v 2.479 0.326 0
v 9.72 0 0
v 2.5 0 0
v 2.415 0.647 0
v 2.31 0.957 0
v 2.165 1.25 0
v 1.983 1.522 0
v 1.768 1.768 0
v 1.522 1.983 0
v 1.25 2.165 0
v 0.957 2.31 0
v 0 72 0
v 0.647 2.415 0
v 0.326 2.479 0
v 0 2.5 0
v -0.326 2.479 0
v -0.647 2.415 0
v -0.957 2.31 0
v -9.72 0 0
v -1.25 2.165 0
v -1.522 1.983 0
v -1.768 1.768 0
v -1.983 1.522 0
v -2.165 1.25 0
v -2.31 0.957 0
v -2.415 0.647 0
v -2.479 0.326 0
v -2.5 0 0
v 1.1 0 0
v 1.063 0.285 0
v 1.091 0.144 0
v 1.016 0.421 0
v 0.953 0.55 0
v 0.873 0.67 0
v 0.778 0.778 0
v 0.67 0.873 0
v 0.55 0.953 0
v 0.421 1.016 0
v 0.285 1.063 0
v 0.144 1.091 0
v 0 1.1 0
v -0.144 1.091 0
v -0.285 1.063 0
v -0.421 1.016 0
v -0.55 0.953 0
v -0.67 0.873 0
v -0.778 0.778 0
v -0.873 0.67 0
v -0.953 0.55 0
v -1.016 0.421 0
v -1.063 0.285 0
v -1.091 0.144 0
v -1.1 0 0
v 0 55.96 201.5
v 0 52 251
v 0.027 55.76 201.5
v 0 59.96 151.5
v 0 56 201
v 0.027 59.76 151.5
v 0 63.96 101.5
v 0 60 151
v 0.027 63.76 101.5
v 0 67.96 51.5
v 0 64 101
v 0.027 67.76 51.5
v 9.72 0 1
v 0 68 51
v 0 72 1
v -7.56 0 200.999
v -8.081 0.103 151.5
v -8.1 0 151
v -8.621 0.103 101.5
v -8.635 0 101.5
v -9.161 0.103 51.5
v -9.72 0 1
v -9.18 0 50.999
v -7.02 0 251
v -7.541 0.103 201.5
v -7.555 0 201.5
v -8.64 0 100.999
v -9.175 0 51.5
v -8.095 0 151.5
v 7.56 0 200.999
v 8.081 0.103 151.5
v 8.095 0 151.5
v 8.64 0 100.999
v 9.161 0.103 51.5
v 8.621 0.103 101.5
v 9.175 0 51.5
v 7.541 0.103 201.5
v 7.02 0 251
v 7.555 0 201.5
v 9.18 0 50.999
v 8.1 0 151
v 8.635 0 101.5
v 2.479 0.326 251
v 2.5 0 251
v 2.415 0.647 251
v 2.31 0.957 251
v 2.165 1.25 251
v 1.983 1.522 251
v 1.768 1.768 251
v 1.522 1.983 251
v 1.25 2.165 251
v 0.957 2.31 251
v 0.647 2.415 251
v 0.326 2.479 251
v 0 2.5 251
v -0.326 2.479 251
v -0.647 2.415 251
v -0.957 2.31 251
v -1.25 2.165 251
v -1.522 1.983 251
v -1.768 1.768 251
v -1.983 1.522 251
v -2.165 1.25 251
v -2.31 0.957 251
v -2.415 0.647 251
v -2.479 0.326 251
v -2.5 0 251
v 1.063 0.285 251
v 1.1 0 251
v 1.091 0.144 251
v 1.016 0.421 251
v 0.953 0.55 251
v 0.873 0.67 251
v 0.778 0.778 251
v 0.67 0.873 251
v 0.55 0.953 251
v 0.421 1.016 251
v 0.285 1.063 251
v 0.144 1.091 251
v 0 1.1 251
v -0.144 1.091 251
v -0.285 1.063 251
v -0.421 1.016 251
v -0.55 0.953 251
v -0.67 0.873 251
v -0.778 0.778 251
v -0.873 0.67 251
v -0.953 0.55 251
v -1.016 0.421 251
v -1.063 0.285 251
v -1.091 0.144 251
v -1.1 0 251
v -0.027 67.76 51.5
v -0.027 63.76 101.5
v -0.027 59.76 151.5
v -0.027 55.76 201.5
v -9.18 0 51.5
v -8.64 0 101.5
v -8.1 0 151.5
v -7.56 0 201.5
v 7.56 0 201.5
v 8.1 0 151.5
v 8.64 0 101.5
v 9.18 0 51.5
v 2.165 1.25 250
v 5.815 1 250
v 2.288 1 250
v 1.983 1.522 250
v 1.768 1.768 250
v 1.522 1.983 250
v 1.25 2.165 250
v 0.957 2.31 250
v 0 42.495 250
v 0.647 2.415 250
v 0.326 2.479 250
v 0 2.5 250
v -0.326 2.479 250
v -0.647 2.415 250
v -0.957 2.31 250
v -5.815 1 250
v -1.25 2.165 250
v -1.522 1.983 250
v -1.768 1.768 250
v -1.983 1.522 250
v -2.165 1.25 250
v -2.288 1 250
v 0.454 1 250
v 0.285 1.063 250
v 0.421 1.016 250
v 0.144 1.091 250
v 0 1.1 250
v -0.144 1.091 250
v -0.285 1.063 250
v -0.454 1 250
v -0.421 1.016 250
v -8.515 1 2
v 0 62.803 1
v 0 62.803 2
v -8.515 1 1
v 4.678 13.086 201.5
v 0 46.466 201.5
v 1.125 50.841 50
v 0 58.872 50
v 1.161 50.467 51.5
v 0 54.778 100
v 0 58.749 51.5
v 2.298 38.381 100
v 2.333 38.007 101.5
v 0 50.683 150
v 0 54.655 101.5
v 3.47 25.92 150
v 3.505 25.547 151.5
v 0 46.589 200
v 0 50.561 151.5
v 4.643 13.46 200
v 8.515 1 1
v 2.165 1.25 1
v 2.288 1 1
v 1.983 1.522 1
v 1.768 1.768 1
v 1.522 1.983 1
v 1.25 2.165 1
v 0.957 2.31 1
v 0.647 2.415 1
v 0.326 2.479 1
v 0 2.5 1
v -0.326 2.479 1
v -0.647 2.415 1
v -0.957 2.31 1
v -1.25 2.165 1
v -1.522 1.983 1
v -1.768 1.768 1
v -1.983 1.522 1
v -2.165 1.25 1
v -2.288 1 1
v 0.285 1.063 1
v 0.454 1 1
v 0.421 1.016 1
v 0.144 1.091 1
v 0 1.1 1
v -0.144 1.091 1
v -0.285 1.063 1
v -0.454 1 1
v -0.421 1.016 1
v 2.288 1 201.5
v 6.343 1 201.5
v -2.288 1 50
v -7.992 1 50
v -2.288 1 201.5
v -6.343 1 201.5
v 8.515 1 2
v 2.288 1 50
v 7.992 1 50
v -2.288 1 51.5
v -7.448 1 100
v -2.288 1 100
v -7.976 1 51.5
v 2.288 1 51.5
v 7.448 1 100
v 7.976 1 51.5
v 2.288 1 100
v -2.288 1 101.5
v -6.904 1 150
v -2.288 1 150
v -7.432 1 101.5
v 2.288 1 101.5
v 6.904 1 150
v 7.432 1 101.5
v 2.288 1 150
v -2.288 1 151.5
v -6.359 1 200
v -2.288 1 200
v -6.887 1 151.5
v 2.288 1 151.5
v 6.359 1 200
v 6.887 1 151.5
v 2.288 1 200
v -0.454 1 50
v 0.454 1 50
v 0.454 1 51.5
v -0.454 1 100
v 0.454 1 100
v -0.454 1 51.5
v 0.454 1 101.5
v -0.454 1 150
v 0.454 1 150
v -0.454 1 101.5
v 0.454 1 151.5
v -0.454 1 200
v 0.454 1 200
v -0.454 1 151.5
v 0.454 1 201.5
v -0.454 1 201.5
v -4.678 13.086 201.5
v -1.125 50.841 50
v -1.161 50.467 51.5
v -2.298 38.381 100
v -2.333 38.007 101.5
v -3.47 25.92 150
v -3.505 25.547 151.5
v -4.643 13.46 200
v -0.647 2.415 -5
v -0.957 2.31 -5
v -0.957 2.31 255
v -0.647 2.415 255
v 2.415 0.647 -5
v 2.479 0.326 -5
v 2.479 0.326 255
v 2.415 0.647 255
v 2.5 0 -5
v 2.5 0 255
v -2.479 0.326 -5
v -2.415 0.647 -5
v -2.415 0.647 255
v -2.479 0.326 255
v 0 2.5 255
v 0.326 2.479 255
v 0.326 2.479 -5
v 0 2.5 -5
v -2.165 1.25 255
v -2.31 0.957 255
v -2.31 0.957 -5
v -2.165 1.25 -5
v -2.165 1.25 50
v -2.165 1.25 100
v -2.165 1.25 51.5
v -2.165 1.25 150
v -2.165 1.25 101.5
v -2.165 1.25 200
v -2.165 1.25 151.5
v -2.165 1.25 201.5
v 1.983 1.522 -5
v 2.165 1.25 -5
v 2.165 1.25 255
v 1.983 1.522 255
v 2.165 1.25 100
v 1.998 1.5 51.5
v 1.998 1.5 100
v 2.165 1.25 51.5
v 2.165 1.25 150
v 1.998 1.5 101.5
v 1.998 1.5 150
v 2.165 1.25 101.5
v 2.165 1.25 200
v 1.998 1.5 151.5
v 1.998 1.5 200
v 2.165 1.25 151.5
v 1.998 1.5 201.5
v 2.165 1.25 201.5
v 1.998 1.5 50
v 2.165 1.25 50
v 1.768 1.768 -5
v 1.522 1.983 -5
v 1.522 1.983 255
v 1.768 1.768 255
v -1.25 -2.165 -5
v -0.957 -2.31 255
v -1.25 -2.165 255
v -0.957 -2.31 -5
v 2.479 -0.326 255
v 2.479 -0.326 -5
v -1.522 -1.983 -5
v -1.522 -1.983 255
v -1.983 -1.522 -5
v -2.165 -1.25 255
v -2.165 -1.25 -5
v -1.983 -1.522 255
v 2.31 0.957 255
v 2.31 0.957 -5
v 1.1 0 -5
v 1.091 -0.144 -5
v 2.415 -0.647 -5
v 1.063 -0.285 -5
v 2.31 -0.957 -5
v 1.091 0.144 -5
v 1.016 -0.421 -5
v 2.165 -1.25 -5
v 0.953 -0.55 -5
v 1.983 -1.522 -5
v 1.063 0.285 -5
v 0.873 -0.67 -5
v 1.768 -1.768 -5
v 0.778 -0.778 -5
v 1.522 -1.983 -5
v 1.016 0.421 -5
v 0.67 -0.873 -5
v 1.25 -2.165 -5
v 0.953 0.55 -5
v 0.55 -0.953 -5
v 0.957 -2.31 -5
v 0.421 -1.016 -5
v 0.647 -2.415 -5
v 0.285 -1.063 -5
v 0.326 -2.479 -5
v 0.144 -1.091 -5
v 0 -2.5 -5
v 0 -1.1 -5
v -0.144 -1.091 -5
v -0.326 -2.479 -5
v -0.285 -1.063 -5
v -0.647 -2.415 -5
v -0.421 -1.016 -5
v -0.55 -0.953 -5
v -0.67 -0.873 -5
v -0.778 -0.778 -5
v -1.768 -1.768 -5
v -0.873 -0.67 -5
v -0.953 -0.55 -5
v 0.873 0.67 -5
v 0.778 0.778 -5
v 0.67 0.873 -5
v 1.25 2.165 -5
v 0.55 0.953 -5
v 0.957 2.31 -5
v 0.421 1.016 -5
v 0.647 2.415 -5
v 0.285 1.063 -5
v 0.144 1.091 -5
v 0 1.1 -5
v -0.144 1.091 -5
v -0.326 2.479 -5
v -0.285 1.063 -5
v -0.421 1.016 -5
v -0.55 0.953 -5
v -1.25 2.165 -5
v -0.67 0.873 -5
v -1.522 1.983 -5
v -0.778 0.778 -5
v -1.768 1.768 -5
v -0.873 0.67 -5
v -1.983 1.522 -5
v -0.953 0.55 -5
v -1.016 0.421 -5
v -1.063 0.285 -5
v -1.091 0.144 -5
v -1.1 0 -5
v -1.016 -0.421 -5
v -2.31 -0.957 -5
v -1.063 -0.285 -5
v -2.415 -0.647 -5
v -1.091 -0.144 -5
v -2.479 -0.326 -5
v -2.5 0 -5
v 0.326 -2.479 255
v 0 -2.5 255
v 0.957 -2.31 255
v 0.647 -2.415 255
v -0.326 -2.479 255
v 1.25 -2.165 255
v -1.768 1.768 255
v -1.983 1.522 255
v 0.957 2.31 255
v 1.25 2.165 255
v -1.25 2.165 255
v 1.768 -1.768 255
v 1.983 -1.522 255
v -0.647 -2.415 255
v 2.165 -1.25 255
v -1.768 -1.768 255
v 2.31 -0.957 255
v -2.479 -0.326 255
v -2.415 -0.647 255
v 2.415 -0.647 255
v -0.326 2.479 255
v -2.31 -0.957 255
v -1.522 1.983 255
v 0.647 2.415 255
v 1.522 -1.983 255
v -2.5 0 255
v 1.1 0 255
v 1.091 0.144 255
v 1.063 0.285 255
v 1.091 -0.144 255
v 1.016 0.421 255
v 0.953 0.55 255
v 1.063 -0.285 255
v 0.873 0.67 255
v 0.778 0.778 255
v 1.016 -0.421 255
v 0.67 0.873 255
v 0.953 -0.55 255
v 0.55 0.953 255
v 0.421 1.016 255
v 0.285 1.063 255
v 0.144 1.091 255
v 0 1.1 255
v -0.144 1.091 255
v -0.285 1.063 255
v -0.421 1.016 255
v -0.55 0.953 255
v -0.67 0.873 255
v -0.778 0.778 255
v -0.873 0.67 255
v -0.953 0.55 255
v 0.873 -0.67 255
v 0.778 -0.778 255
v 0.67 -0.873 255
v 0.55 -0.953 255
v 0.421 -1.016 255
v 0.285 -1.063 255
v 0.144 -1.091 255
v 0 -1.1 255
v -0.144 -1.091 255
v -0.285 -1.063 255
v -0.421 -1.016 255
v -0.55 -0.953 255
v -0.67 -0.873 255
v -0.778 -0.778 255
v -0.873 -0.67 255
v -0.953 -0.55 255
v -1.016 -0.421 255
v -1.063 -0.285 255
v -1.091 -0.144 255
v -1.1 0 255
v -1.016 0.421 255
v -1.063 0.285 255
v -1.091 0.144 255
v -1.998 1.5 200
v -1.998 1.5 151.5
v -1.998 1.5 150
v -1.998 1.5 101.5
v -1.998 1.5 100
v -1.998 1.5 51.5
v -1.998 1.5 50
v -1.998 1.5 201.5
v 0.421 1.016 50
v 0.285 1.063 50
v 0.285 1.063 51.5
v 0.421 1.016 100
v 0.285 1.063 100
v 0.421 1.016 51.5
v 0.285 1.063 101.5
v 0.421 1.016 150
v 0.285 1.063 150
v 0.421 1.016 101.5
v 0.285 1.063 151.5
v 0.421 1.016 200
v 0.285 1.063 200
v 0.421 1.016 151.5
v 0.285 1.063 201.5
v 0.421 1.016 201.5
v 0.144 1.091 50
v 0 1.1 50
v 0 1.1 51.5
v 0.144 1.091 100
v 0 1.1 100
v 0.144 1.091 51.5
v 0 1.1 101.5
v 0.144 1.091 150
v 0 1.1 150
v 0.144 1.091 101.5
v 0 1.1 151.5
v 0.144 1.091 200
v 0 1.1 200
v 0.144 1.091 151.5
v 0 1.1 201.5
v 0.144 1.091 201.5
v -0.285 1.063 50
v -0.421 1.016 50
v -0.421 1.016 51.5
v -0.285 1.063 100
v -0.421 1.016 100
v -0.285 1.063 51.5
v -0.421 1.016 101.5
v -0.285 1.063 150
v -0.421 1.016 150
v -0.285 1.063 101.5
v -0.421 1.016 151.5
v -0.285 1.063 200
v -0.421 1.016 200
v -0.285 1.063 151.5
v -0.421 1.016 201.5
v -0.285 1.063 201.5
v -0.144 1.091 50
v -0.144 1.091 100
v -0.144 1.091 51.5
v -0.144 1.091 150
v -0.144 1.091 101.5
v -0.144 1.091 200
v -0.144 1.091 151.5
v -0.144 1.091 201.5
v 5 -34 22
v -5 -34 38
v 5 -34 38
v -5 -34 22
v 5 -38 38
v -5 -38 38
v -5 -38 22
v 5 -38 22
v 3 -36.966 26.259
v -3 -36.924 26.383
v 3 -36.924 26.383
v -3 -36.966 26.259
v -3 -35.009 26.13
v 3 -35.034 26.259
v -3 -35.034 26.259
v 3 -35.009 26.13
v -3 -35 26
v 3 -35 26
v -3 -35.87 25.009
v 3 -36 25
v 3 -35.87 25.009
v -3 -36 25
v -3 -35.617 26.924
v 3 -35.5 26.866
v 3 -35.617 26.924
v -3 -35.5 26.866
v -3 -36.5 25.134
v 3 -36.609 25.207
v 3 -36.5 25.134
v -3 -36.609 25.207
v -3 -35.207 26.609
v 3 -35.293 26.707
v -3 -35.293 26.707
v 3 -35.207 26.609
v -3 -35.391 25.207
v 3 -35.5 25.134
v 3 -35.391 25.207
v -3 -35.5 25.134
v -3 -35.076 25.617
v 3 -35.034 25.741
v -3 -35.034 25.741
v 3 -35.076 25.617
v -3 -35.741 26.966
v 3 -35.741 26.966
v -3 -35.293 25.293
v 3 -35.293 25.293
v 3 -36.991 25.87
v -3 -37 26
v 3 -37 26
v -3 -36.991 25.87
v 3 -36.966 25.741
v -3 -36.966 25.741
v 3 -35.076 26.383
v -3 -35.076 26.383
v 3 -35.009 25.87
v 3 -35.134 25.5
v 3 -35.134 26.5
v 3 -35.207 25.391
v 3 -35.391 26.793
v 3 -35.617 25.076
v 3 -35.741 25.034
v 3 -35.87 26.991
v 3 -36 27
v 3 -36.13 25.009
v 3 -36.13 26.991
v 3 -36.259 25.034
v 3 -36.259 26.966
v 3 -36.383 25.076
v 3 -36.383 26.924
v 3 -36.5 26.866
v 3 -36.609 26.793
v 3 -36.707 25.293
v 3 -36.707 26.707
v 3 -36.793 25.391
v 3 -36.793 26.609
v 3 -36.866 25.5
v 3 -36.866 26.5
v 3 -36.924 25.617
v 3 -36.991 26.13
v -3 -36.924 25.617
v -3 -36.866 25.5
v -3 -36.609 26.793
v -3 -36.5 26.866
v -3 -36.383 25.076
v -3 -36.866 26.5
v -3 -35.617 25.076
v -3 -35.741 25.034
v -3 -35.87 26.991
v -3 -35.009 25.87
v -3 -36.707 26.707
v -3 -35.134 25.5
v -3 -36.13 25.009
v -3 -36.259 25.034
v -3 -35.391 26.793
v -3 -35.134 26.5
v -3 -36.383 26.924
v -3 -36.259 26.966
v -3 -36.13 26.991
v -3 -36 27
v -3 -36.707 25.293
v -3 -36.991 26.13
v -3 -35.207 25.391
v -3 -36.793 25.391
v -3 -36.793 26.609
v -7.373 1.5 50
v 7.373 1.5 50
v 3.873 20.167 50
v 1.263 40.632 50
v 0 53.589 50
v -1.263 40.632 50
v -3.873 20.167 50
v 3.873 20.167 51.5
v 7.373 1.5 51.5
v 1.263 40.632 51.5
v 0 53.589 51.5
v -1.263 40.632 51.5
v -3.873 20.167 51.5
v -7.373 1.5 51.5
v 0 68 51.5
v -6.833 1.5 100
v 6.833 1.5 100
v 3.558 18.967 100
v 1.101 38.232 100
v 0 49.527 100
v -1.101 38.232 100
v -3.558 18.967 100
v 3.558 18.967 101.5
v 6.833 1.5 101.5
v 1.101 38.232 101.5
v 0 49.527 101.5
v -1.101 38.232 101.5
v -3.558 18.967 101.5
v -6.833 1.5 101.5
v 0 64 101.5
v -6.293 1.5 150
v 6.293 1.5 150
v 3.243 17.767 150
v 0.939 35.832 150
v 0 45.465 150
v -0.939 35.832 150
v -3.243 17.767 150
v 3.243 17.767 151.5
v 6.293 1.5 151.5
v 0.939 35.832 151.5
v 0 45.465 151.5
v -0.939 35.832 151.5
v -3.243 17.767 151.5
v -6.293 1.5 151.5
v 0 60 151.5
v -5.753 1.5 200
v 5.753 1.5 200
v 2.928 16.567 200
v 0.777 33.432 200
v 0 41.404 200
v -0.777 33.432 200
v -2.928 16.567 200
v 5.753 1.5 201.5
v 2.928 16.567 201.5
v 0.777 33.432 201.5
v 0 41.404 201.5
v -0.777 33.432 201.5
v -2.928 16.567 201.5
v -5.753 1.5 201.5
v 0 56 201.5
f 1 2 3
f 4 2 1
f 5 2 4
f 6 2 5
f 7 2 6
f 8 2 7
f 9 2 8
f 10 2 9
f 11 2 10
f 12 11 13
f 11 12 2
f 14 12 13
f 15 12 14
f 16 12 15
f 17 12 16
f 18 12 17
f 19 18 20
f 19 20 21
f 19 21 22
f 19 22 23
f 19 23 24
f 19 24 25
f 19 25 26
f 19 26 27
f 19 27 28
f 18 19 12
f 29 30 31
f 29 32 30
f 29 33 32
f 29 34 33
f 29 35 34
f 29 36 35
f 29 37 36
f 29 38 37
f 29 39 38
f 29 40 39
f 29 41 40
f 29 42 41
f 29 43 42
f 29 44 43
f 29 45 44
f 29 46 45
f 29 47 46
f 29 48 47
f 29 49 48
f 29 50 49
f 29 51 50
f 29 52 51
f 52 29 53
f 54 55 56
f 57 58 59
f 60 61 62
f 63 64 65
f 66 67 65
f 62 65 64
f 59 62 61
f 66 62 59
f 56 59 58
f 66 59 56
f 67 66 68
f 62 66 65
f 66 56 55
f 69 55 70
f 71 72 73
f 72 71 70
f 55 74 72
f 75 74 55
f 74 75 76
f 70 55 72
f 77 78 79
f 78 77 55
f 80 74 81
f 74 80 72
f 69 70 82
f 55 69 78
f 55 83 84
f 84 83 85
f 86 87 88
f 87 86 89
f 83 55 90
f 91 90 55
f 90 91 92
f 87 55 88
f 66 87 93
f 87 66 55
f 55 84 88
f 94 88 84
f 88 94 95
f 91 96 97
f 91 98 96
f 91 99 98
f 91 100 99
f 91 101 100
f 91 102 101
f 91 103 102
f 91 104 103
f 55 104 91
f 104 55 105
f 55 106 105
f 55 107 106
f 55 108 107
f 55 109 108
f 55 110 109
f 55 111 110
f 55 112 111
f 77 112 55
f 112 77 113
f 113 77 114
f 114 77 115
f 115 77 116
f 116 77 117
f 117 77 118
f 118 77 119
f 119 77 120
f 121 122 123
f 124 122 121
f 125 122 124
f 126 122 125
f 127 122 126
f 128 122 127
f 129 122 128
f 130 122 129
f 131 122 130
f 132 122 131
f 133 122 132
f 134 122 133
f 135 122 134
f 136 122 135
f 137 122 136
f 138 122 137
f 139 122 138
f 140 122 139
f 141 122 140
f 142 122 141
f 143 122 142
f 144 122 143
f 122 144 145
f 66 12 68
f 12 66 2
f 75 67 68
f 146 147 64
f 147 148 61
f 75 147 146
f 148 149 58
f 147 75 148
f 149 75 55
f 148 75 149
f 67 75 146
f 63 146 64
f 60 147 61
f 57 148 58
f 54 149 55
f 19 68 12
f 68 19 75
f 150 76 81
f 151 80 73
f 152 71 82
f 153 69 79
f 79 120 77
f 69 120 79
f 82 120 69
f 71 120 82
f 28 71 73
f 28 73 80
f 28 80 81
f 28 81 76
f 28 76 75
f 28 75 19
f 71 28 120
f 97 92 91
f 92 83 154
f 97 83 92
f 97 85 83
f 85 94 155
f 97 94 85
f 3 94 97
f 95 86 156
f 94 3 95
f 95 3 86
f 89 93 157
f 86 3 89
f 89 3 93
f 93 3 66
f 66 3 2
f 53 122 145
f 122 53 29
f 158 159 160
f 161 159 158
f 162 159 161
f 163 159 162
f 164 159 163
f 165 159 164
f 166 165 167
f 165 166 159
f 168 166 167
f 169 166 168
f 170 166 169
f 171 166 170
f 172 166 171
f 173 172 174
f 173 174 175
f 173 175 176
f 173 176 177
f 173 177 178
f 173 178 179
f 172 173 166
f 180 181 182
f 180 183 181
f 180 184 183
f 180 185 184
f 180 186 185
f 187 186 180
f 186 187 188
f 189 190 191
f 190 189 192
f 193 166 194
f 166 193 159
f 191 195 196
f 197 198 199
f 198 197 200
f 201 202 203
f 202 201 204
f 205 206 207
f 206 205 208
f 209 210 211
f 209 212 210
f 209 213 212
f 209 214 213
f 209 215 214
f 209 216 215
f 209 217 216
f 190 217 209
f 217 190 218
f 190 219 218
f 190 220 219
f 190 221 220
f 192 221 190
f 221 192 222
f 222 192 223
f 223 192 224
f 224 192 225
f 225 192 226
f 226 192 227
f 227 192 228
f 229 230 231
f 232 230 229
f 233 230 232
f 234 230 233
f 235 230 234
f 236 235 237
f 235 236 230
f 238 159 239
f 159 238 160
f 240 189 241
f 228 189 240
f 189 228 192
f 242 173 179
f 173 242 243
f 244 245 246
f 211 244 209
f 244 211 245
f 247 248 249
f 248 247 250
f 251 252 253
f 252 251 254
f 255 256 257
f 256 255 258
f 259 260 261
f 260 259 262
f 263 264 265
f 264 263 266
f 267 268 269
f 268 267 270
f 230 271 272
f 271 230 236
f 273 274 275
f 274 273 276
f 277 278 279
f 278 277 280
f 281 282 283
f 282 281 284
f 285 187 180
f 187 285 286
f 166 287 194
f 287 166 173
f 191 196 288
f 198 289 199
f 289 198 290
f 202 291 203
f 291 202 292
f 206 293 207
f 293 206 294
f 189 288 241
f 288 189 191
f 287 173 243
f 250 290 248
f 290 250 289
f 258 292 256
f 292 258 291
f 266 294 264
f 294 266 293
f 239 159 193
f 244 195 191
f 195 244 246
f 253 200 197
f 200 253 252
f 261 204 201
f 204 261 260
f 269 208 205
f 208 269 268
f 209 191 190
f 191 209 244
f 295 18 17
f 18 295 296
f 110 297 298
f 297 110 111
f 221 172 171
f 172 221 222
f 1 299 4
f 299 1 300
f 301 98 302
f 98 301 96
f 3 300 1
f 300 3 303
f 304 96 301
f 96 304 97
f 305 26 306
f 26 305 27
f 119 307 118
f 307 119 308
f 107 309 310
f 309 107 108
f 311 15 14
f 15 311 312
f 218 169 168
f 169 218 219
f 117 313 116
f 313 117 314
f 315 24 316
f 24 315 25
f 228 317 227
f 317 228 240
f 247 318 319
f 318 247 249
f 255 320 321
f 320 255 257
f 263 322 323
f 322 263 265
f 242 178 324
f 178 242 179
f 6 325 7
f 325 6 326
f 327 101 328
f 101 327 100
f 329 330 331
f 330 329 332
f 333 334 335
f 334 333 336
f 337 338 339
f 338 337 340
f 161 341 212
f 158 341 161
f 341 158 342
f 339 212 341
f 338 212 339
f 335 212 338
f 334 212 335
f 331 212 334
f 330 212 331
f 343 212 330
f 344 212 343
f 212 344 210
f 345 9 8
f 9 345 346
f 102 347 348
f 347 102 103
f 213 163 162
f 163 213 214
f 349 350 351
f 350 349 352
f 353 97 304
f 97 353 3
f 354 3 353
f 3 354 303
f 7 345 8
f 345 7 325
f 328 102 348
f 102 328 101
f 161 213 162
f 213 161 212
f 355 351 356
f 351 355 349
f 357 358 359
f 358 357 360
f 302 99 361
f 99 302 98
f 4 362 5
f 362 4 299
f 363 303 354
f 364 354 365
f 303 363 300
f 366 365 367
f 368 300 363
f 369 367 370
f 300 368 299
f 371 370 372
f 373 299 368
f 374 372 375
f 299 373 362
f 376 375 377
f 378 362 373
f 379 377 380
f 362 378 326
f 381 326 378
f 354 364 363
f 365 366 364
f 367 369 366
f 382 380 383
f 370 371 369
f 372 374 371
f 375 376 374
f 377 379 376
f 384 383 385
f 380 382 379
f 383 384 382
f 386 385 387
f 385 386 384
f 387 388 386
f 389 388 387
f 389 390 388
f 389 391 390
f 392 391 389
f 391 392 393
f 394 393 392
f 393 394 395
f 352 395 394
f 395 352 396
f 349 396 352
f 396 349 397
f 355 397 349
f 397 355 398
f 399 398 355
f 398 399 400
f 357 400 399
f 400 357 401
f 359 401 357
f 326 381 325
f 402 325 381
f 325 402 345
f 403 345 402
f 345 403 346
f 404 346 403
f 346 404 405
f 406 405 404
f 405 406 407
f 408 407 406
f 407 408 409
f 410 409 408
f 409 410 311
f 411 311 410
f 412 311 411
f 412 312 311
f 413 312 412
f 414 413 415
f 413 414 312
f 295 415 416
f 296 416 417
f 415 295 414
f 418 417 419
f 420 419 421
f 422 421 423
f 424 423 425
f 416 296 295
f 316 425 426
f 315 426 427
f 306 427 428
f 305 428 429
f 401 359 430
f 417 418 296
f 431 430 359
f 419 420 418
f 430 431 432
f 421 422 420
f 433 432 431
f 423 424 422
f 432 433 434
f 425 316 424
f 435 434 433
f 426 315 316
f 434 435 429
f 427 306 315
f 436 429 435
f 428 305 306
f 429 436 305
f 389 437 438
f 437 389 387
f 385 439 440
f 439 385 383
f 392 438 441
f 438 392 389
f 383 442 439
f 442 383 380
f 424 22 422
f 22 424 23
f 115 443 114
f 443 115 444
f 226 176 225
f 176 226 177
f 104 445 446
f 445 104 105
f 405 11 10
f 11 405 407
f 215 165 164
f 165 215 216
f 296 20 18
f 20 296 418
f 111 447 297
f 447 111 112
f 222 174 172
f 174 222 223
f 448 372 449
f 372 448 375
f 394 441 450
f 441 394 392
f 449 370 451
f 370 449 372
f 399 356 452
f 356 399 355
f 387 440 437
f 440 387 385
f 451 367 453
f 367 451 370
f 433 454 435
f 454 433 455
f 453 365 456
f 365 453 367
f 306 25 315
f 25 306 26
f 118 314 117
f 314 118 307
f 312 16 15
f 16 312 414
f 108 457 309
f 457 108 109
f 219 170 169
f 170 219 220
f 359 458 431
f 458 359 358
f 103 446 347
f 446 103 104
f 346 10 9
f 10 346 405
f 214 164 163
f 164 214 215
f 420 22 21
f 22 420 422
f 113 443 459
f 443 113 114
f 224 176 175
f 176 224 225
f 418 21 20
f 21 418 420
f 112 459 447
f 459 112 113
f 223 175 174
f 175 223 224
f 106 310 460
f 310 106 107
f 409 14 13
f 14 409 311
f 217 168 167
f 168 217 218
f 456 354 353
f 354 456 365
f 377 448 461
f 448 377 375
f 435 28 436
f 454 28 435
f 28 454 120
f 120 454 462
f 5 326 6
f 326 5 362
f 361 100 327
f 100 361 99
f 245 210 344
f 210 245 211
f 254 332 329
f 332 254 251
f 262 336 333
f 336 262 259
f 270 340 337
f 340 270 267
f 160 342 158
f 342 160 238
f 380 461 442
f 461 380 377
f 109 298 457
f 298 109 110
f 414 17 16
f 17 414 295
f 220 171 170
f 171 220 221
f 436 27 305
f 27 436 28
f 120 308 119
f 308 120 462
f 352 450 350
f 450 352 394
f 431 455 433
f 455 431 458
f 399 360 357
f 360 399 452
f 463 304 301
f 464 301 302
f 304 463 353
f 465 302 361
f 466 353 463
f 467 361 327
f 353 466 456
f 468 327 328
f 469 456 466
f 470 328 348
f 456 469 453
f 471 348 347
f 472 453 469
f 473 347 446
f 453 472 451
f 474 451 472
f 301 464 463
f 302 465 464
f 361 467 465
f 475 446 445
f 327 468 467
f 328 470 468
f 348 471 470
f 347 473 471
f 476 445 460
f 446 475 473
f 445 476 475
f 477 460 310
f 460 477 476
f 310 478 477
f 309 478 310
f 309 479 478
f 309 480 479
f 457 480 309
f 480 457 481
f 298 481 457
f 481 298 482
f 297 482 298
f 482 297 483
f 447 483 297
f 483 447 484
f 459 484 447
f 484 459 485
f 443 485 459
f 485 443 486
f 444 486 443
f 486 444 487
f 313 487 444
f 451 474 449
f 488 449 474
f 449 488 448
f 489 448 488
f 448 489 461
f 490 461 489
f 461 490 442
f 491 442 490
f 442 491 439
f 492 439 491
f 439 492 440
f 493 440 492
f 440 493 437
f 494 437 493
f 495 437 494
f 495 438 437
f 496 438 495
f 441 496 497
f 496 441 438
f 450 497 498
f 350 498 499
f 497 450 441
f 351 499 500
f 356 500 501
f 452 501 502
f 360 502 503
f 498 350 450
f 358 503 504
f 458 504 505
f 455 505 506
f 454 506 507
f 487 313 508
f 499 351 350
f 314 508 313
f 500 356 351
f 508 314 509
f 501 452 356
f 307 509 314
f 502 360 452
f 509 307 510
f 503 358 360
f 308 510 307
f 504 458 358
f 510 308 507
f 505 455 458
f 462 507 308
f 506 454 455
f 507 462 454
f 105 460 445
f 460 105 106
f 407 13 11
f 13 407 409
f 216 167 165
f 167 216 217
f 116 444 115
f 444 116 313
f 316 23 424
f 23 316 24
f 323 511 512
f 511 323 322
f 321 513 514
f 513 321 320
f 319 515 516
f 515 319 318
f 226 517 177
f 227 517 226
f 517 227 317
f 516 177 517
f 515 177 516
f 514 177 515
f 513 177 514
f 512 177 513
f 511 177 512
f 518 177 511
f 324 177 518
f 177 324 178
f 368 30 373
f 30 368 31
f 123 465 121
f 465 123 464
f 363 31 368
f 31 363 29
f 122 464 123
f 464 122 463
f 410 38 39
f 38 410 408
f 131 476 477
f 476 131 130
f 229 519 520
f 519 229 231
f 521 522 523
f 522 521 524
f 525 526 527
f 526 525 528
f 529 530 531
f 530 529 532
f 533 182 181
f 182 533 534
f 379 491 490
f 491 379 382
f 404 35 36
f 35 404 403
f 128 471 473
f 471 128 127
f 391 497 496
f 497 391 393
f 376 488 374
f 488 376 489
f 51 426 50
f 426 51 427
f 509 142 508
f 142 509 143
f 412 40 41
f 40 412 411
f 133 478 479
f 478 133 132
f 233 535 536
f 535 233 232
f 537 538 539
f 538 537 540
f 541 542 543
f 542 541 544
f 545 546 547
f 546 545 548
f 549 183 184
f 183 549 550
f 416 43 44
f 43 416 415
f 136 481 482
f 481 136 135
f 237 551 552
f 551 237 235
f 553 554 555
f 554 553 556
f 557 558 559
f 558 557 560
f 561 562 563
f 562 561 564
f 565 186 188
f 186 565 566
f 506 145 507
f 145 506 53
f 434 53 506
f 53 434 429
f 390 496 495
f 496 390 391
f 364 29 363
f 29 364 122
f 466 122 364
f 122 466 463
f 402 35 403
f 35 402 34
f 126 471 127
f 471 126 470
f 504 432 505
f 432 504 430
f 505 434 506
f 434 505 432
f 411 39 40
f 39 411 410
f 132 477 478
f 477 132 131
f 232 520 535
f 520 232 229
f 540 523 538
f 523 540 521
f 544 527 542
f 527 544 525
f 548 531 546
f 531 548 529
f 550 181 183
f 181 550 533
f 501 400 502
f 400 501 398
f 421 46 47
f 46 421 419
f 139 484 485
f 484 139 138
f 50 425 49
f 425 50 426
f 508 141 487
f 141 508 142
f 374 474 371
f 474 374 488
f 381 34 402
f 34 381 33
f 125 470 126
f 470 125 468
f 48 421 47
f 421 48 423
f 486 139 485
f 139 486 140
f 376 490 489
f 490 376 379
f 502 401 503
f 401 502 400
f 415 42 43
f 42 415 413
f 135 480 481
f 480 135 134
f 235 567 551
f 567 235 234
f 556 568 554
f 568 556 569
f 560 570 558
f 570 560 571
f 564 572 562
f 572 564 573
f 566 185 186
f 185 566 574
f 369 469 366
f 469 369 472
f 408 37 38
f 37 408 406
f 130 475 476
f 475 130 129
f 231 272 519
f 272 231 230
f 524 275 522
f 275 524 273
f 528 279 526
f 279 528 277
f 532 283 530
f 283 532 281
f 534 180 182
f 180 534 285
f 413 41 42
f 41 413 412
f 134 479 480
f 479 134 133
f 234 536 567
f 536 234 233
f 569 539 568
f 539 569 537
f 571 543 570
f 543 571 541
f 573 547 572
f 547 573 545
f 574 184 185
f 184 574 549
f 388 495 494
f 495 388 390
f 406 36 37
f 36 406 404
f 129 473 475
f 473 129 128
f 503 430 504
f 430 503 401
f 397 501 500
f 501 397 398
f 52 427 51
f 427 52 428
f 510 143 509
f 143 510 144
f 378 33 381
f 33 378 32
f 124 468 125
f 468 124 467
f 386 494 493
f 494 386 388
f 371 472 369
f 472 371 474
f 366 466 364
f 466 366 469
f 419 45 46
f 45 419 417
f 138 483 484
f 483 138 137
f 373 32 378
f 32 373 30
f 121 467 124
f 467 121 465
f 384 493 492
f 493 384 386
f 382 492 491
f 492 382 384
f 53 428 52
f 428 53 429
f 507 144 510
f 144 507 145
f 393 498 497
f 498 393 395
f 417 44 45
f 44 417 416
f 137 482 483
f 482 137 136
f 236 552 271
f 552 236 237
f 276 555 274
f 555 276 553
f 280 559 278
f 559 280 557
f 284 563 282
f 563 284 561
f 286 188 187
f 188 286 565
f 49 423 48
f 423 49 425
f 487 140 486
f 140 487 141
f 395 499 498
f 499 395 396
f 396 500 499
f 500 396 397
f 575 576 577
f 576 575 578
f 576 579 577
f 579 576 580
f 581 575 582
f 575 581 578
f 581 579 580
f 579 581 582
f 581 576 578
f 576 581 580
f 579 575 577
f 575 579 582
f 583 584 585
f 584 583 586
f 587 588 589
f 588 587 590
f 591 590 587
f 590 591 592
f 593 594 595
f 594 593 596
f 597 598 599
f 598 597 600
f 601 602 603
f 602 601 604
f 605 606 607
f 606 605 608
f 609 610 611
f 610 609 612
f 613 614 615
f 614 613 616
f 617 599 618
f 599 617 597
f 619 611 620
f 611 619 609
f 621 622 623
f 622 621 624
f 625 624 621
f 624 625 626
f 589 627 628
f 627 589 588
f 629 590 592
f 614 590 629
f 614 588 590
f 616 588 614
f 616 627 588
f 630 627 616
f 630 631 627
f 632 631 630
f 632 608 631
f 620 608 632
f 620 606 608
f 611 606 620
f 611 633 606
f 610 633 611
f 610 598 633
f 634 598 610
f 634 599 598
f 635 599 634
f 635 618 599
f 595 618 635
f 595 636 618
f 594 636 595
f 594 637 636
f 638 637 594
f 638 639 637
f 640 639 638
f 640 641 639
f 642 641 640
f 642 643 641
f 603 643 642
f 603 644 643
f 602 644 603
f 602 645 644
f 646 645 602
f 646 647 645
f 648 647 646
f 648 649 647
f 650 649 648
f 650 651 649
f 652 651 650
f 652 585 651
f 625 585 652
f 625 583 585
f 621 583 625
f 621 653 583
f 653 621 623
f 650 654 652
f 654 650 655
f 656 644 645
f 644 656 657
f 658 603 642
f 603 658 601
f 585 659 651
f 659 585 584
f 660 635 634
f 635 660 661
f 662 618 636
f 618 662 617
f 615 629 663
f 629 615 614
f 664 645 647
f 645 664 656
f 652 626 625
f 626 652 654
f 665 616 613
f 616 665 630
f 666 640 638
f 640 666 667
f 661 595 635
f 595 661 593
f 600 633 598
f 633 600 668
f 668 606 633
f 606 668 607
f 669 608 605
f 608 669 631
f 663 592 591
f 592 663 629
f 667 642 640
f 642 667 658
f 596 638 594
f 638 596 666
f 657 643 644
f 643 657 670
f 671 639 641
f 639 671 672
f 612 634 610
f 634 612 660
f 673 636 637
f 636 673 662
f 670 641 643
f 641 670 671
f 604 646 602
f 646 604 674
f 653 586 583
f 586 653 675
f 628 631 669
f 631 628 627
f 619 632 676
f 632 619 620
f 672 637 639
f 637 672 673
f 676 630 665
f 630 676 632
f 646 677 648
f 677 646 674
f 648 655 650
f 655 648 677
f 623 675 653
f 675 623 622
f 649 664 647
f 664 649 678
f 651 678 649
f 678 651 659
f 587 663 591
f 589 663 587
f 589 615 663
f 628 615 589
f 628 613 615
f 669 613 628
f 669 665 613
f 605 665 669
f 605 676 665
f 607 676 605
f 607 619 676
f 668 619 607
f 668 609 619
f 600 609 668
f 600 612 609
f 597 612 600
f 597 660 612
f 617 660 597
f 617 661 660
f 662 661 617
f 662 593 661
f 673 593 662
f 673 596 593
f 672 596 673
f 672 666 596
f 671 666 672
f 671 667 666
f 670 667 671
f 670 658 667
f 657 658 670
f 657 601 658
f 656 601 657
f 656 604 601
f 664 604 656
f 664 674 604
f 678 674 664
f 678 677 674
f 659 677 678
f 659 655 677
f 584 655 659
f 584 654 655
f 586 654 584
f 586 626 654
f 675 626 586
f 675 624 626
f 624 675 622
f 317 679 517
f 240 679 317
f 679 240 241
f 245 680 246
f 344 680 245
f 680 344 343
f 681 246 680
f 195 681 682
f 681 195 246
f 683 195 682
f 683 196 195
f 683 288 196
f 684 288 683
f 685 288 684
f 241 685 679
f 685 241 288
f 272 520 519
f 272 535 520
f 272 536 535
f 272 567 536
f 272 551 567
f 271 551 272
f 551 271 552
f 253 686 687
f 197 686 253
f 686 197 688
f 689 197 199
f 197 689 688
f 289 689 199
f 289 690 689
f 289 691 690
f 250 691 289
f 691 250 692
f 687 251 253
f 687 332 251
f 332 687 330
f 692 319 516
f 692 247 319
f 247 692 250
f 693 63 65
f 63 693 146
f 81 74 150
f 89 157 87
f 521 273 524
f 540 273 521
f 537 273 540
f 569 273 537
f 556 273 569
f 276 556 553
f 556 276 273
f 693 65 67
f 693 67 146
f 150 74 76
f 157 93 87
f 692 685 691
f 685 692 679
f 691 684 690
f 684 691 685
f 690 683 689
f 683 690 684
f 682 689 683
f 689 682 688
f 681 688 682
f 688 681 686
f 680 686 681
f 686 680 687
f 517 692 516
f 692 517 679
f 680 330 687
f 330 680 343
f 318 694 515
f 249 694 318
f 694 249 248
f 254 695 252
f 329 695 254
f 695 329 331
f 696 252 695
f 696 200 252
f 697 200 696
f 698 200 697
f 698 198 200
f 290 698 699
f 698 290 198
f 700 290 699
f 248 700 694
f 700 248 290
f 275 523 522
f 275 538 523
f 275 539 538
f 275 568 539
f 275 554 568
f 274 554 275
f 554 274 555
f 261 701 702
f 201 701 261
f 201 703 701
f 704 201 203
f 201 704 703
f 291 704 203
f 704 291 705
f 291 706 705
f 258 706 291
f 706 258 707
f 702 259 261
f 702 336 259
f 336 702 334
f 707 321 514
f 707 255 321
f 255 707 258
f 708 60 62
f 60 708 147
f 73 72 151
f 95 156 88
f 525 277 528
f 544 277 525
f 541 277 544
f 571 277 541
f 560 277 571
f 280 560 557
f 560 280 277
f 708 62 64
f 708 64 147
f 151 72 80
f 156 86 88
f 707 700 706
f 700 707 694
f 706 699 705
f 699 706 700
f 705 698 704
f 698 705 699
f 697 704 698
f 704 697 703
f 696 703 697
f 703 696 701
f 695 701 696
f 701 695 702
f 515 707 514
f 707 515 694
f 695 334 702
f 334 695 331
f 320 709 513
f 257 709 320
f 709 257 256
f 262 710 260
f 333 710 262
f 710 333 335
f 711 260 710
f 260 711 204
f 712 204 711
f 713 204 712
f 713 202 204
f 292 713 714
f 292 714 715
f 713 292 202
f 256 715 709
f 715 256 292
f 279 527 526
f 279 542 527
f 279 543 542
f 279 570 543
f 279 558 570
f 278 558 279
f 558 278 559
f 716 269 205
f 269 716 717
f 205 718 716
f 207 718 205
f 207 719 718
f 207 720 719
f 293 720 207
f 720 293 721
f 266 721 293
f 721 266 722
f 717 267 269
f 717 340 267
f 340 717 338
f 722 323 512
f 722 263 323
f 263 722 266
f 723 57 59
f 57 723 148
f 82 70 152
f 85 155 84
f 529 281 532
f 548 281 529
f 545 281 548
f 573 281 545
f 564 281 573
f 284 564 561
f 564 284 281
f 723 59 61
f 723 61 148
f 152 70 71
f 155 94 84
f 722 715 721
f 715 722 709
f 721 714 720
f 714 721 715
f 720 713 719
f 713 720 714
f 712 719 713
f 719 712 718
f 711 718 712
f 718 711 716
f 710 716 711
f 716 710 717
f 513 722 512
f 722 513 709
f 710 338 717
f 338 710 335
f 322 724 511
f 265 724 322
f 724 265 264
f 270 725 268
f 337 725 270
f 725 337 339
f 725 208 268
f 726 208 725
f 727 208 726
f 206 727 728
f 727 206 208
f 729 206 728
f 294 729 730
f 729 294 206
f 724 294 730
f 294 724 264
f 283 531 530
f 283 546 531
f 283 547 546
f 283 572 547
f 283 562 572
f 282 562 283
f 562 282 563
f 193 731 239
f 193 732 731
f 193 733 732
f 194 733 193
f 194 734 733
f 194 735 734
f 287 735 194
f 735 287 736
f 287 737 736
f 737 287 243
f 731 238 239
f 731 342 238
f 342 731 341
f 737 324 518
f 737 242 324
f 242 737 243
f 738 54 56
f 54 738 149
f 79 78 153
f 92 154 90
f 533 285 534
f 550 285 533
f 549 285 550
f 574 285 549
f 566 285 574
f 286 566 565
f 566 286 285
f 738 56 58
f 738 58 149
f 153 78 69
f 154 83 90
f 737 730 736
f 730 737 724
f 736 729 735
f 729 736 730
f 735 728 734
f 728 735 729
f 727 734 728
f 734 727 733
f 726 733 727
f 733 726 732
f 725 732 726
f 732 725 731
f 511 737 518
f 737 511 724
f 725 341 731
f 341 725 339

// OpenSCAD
// Směrové kormidlo - zadních 40% SOP
// NACA 0009 profil (zadní část), výška 250mm
// Material: PLA-LW, 10% výplň, 2 perimetry

$fn = 48;

vyska = 250;
hloubka_sop_koren = 180;
hloubka_sop_konec = 130;
kormidlo_pomer = 0.40;
hloubka_korm_koren = hloubka_sop_koren * kormidlo_pomer; // 72mm
hloubka_korm_konec = hloubka_sop_konec * kormidlo_pomer; // 52mm
tl = 1.0;
t = 0.09; // NACA 0009

module smerove_kormidlo() {
    difference() {
        // Tvar
        hull() {
            // Spodek (kořen)
            translate([0, 0, 0])
                linear_extrude(1)
                    smer_profil(hloubka_sop_koren, hloubka_korm_koren);
            // Vršek (konec)
            translate([0, 0, vyska])
                linear_extrude(1)
                    smer_profil(hloubka_sop_konec, hloubka_korm_konec);
        }

        // Dutina
        hull() {
            translate([0, 0, tl])
                linear_extrude(1)
                    offset(delta=-tl)
                        smer_profil(hloubka_sop_koren, hloubka_korm_koren);
            translate([0, 0, vyska - tl])
                linear_extrude(1)
                    offset(delta=-tl)
                        smer_profil(hloubka_sop_konec, hloubka_korm_konec);
        }
    }

    // Pantová osa
    translate([0, 0, -5])
        difference() {
            cylinder(d=5, h=vyska + 10);
            cylinder(d=2.2, h=vyska + 12);
        }

    // Páka pro táhlo serva (dole)
    translate([0, -hloubka_korm_koren * 0.5, 30])
        rotate([0, 0, 90])
            difference() {
                cube([4, 10, 16], center=true);
                translate([0, 0, -4])
                    rotate([90, 0, 0])
                        cylinder(d=2, h=6, center=true);
            }

    // Žebra
    for (i = [1:4]) {
        frac = i / 5;
        h_full = hloubka_sop_koren + (hloubka_sop_konec - hloubka_sop_koren) * frac;
        h_korm = h_full * kormidlo_pomer;
        translate([0, 0, frac * vyska])
            linear_extrude(1.5)
                difference() {
                    smer_profil(h_full, h_korm);
                    offset(delta=-1.5)
                        smer_profil(h_full, h_korm);
                }
    }
}

module smer_profil(full_chord, korm_chord) {
    polygon([
        [-t * full_chord * 0.6, 0],
        [-t * full_chord * 0.35, korm_chord * 0.3],
        [-t * full_chord * 0.18, korm_chord * 0.6],
        [-t * full_chord * 0.05, korm_chord * 0.9],
        [0, korm_chord],
        [t * full_chord * 0.05, korm_chord * 0.9],
        [t * full_chord * 0.18, korm_chord * 0.6],
        [t * full_chord * 0.35, korm_chord * 0.3],
        [t * full_chord * 0.6, 0]
    ]);
}

smerove_kormidlo();
